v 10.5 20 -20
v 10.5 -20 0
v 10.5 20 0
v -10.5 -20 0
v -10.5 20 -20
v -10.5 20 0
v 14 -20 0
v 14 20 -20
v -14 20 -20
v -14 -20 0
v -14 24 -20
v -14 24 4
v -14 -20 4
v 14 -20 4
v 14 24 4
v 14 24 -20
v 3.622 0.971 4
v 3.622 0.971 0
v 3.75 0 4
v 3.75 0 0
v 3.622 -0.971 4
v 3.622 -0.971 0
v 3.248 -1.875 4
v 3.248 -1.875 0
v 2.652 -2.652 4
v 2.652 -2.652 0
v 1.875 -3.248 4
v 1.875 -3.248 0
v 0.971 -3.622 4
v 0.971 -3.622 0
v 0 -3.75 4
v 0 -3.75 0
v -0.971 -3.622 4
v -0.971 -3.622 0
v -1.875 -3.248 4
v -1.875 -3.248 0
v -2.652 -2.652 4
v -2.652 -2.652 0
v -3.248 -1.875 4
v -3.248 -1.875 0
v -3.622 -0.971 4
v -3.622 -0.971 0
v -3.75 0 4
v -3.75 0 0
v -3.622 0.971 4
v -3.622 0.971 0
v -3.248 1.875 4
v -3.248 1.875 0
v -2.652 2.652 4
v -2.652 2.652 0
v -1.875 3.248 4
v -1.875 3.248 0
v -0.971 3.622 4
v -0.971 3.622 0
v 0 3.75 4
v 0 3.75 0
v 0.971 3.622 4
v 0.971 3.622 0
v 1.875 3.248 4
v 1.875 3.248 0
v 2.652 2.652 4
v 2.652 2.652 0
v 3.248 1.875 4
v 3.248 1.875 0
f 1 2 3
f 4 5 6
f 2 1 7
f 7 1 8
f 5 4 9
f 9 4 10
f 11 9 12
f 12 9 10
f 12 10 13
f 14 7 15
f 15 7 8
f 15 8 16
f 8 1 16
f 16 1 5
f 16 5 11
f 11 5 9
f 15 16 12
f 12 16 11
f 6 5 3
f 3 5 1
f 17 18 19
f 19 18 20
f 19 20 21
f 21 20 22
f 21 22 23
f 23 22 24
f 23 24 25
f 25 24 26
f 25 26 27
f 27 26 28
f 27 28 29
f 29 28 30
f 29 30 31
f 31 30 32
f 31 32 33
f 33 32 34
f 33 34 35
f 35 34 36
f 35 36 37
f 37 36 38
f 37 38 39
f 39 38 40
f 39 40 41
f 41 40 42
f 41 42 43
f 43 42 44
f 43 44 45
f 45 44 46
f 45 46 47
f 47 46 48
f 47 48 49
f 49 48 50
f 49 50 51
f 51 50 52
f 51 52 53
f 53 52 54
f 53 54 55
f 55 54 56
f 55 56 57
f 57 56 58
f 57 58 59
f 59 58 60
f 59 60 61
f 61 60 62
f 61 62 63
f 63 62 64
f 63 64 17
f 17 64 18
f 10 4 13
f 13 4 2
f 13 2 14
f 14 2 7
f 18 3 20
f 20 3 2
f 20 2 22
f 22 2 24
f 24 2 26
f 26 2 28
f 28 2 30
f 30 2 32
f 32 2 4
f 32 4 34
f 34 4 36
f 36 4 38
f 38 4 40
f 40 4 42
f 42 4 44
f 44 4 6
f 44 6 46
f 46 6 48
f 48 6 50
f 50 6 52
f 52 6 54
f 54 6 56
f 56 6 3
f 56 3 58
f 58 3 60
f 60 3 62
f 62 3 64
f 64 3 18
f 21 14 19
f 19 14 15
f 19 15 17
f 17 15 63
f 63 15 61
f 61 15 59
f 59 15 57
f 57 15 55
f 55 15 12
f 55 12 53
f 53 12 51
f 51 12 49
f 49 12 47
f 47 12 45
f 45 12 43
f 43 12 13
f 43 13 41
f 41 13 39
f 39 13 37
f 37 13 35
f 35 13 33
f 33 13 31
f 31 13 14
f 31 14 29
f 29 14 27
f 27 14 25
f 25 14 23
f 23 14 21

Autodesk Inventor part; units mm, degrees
ref_plane "YZ Plane" through (0, 0, 0) normal (1, 0, 0) x (0, 1, 0)
ref_plane "XZ Plane" through (0, 0, 0) normal (0, 1, 0) x (-1, 0, 0)
ref_plane "XY Plane" through (0, 0, 0) normal (0, 0, 1) x (1, 0, 0)
sketch "Sketch1" plane through (0, 0, 0) normal (0, 0, 1) x (1, 0, 0)
  circle A0 centre (0, 0) radius 3.75
  line L0 (-10, 20) -> (10, 20)
  line L1 (10, 20) -> (10, -20)
  line L2 (10, -20) -> (-10, -20)
  line L3 (-10, -20) -> (-10, 20)
  line L4 (-10, 20) -> (10, -20) construction
  line L5 (10, 20) -> (-10, -20) construction
  dimension "d0" = 7.5
  dimension "d1" = 40
  dimension "d2" = 20
extrude "Extrusion1" add sketch "Sketch1" along normal blind 4
sketch "Sketch2" plane through (-10, 20, 0) normal (0, 1, 0) x (1, 0, 0)
  line L0 (20, -4) -> (0, -4) projected
  line L1 (0, -4) -> (20, -4)
  line L2 (20, -4) -> (20, 20)
  line L3 (20, 20) -> (0, 20)
  line L4 (0, 20) -> (0, -4)
  point P0 (10, 0)
  dimension "d5" = 24
extrude "Extrusion2" add sketch "Sketch2" along normal blind 4
sketch "Sketch3" plane through (10, -20, 4) normal (1, 0, 0) x (0, 0, -1)
  line L0 (4, 0) -> (0, 0) projected
  line L1 (4, 40) -> (24, 40) projected
  line L2 (4, 0) -> (24, 40)
  line L3 (24, 40) -> (24, 44) projected
  line L4 (24, 40) -> (24, 44)
  line L5 (24, 44) -> (0, 44) projected
  line L6 (24, 44) -> (0, 44)
  line L7 (0, 0) -> (0, 44) projected
  line L8 (0, 44) -> (0, 0)
  line L9 (0, 0) -> (4, 0)
  point P0 (4, 20)
extrude "Extrusion3" add sketch "Sketch3" along normal blind 4
ref_plane "Work Plane1" through (0, -20, 4) normal (1, 0, 0) x (0, 0, -1)
mirror "Mirror1" about plane through (0, -20, 4) normal (1, 0, 0) of "Extrusion3"
sketch "Sketch4" plane through (14, 20, -20) normal (0, 0, -1) x (-1, 0, 0)
  line L0 (3.5, 0) -> (24.5, 0)
  line L1 (24.5, 0) -> (24.5, -40)
  line L2 (24.5, -40) -> (3.5, -40)
  line L3 (3.5, -40) -> (3.5, 0)
  line L4 (3.5, 0) -> (24.5, -40) construction
  line L5 (24.5, 0) -> (3.5, -40) construction
  point P0 (14, -20)
  dimension "d11" = 21
  dimension "d12" = 40
extrude "Extrusion4" cut sketch "Sketch4" against normal blind 20
properties part number "Gabarito Furo BOX 20"
